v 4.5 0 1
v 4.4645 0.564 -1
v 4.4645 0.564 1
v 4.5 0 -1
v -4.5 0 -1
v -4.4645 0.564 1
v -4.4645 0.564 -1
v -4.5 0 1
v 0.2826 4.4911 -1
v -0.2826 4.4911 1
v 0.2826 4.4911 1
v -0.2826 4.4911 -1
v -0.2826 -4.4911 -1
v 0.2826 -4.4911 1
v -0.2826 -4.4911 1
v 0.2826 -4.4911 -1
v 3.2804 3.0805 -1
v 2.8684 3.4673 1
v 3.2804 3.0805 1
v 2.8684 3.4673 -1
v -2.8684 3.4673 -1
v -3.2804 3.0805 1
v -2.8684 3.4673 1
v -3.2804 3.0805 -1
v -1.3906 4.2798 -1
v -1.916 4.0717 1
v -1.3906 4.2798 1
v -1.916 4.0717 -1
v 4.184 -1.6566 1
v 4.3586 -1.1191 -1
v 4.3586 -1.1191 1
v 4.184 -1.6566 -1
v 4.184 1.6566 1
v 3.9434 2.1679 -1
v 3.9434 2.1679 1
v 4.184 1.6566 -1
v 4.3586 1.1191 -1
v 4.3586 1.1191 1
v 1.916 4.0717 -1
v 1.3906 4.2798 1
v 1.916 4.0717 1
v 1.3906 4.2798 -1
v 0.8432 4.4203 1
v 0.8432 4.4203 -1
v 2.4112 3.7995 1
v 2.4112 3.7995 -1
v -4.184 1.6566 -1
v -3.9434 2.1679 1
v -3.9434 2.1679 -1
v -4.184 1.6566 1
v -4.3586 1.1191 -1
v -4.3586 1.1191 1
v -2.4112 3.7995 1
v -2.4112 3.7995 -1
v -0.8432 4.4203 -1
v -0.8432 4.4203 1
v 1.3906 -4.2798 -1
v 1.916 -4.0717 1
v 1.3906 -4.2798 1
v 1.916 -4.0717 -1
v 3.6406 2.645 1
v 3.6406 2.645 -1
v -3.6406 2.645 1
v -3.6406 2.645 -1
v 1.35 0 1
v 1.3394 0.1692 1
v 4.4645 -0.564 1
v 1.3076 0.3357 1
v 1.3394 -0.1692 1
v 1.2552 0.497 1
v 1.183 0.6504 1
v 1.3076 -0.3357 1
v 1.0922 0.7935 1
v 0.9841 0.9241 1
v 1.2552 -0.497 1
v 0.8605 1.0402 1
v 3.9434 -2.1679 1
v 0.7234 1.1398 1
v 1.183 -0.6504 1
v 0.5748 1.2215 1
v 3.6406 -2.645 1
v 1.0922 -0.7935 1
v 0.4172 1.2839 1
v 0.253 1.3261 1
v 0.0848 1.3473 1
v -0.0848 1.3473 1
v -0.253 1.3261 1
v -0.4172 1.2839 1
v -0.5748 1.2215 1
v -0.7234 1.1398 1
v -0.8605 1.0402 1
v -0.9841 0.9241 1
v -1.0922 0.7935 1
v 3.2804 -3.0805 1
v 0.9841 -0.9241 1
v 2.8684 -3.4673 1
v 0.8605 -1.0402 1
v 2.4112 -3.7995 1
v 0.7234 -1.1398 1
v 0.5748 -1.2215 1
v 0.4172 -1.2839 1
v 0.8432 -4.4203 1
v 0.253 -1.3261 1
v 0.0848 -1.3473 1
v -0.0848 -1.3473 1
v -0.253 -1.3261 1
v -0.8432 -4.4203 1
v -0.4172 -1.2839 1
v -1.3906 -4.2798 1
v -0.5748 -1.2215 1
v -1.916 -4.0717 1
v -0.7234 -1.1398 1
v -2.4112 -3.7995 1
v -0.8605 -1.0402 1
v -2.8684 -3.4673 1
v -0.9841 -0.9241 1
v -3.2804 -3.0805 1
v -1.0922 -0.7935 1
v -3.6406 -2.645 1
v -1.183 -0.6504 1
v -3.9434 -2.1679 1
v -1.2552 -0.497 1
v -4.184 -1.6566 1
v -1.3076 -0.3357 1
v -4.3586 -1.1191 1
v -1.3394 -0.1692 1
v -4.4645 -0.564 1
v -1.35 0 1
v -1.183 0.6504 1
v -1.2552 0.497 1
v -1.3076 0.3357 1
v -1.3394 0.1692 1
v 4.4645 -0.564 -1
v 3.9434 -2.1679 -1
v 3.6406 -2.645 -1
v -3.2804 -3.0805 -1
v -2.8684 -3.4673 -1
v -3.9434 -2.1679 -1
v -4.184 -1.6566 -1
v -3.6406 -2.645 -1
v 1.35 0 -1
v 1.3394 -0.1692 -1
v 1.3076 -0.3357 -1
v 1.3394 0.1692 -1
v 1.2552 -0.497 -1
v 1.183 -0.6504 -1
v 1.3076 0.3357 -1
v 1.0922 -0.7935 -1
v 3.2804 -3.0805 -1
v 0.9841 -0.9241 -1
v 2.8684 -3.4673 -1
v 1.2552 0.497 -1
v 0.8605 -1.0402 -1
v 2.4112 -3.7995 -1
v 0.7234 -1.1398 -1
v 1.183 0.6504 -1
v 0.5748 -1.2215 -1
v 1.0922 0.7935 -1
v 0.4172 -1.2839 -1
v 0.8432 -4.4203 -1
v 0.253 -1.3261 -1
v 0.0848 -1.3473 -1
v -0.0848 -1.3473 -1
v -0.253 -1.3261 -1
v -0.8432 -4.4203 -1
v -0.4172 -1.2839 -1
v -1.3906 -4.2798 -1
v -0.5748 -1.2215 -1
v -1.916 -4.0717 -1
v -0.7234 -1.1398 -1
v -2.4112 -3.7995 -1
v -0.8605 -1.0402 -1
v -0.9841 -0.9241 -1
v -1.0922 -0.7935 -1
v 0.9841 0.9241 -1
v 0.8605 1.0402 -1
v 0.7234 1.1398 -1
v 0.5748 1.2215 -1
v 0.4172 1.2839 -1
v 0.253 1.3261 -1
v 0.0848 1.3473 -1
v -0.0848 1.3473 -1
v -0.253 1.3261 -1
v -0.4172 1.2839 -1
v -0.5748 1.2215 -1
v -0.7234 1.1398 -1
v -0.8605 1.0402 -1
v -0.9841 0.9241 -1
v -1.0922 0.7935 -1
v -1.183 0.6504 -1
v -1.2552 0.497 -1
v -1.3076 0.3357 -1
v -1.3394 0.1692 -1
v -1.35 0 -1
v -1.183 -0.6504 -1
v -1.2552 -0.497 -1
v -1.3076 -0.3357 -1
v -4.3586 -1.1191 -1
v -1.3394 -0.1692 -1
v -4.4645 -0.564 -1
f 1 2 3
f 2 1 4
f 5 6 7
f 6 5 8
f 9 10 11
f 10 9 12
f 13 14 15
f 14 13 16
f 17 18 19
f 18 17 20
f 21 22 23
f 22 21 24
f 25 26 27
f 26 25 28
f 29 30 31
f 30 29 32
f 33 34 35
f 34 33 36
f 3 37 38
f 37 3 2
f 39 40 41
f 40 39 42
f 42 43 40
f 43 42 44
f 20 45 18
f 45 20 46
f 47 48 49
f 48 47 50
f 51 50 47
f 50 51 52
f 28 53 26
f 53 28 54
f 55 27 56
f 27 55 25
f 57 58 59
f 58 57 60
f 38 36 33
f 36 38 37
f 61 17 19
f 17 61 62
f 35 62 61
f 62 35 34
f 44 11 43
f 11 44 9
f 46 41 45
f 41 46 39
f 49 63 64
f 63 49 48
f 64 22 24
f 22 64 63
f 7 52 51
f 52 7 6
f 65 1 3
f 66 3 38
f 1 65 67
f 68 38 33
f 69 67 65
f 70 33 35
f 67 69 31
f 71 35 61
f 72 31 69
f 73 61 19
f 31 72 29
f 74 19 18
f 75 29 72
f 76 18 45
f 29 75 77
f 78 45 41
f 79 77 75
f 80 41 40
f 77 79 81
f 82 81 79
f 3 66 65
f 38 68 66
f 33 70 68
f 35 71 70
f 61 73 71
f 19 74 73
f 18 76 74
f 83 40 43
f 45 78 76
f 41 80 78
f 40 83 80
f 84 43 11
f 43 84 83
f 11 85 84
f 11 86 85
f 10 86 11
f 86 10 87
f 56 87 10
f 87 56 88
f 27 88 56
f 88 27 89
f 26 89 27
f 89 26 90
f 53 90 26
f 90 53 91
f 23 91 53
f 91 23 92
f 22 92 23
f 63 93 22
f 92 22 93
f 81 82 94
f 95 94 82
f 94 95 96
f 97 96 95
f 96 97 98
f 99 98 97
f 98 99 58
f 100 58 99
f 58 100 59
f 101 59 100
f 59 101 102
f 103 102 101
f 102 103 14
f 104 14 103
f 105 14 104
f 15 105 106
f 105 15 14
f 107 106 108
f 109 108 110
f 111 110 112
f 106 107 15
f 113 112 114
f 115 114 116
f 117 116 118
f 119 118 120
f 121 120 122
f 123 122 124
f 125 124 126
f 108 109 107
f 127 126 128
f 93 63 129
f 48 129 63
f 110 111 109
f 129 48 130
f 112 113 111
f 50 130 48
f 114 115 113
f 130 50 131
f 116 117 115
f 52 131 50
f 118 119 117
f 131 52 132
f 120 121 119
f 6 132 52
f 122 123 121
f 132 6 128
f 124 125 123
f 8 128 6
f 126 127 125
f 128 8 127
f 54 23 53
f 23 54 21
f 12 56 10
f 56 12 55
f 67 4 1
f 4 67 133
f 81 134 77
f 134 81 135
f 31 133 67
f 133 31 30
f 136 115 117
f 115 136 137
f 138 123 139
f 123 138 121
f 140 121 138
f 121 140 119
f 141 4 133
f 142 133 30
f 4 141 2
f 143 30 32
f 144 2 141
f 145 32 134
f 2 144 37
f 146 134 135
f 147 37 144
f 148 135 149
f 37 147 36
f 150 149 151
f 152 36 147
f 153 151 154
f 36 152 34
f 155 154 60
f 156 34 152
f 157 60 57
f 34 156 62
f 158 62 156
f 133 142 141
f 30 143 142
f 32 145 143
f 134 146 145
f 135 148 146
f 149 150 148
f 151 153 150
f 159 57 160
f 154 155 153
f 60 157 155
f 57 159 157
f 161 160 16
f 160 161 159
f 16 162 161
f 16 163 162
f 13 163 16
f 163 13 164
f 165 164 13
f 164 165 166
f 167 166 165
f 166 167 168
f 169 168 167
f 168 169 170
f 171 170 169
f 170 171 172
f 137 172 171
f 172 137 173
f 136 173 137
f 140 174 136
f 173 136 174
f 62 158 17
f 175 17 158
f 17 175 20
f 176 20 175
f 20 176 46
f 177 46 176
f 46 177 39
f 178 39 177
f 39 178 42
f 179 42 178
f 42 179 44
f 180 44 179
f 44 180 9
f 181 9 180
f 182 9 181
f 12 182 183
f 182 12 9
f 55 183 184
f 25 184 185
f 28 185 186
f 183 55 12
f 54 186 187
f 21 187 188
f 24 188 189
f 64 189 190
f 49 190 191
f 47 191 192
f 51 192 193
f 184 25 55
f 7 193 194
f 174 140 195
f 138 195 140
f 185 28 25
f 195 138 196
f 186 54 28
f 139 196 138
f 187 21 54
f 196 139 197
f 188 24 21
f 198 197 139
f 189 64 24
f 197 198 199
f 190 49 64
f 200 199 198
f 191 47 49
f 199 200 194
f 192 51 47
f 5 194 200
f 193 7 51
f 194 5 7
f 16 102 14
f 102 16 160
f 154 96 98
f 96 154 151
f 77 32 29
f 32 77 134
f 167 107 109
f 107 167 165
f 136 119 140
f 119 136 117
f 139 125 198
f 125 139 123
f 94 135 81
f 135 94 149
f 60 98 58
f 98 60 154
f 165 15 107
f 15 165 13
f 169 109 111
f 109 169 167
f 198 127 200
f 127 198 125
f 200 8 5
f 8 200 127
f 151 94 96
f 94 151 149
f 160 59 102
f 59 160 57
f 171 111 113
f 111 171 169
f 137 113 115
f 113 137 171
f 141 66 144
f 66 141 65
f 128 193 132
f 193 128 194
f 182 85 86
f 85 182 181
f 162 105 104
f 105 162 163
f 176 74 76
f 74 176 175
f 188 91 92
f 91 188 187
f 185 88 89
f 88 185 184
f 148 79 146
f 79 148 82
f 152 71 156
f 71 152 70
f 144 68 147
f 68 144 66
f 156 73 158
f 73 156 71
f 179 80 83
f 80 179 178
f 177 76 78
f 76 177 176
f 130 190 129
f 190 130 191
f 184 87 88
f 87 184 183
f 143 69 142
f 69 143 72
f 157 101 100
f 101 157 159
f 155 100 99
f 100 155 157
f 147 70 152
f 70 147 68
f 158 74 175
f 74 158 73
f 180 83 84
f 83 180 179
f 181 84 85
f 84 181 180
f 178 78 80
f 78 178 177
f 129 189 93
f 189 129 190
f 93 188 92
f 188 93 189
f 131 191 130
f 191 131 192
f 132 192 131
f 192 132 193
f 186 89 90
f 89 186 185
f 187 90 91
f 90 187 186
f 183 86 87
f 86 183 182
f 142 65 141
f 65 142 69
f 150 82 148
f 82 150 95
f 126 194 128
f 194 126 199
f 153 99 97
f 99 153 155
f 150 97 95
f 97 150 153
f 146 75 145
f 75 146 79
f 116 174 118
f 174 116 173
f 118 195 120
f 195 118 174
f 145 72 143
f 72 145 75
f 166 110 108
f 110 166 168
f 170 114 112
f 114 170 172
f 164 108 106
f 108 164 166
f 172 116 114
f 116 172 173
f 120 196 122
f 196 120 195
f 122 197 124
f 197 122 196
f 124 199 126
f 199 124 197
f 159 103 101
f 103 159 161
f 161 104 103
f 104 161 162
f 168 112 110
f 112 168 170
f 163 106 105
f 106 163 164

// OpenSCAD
$fn = 50;


difference() {
	union() {
		translate(v = [0, 0, -1.0000000000]) {
			cylinder(h = 2, r = 4.5000000000);
		}
	}
	union() {
		translate(v = [0, 0, -100.0000000000]) {
			cylinder(h = 200, r = 1.3500000000);
		}
	}
}
